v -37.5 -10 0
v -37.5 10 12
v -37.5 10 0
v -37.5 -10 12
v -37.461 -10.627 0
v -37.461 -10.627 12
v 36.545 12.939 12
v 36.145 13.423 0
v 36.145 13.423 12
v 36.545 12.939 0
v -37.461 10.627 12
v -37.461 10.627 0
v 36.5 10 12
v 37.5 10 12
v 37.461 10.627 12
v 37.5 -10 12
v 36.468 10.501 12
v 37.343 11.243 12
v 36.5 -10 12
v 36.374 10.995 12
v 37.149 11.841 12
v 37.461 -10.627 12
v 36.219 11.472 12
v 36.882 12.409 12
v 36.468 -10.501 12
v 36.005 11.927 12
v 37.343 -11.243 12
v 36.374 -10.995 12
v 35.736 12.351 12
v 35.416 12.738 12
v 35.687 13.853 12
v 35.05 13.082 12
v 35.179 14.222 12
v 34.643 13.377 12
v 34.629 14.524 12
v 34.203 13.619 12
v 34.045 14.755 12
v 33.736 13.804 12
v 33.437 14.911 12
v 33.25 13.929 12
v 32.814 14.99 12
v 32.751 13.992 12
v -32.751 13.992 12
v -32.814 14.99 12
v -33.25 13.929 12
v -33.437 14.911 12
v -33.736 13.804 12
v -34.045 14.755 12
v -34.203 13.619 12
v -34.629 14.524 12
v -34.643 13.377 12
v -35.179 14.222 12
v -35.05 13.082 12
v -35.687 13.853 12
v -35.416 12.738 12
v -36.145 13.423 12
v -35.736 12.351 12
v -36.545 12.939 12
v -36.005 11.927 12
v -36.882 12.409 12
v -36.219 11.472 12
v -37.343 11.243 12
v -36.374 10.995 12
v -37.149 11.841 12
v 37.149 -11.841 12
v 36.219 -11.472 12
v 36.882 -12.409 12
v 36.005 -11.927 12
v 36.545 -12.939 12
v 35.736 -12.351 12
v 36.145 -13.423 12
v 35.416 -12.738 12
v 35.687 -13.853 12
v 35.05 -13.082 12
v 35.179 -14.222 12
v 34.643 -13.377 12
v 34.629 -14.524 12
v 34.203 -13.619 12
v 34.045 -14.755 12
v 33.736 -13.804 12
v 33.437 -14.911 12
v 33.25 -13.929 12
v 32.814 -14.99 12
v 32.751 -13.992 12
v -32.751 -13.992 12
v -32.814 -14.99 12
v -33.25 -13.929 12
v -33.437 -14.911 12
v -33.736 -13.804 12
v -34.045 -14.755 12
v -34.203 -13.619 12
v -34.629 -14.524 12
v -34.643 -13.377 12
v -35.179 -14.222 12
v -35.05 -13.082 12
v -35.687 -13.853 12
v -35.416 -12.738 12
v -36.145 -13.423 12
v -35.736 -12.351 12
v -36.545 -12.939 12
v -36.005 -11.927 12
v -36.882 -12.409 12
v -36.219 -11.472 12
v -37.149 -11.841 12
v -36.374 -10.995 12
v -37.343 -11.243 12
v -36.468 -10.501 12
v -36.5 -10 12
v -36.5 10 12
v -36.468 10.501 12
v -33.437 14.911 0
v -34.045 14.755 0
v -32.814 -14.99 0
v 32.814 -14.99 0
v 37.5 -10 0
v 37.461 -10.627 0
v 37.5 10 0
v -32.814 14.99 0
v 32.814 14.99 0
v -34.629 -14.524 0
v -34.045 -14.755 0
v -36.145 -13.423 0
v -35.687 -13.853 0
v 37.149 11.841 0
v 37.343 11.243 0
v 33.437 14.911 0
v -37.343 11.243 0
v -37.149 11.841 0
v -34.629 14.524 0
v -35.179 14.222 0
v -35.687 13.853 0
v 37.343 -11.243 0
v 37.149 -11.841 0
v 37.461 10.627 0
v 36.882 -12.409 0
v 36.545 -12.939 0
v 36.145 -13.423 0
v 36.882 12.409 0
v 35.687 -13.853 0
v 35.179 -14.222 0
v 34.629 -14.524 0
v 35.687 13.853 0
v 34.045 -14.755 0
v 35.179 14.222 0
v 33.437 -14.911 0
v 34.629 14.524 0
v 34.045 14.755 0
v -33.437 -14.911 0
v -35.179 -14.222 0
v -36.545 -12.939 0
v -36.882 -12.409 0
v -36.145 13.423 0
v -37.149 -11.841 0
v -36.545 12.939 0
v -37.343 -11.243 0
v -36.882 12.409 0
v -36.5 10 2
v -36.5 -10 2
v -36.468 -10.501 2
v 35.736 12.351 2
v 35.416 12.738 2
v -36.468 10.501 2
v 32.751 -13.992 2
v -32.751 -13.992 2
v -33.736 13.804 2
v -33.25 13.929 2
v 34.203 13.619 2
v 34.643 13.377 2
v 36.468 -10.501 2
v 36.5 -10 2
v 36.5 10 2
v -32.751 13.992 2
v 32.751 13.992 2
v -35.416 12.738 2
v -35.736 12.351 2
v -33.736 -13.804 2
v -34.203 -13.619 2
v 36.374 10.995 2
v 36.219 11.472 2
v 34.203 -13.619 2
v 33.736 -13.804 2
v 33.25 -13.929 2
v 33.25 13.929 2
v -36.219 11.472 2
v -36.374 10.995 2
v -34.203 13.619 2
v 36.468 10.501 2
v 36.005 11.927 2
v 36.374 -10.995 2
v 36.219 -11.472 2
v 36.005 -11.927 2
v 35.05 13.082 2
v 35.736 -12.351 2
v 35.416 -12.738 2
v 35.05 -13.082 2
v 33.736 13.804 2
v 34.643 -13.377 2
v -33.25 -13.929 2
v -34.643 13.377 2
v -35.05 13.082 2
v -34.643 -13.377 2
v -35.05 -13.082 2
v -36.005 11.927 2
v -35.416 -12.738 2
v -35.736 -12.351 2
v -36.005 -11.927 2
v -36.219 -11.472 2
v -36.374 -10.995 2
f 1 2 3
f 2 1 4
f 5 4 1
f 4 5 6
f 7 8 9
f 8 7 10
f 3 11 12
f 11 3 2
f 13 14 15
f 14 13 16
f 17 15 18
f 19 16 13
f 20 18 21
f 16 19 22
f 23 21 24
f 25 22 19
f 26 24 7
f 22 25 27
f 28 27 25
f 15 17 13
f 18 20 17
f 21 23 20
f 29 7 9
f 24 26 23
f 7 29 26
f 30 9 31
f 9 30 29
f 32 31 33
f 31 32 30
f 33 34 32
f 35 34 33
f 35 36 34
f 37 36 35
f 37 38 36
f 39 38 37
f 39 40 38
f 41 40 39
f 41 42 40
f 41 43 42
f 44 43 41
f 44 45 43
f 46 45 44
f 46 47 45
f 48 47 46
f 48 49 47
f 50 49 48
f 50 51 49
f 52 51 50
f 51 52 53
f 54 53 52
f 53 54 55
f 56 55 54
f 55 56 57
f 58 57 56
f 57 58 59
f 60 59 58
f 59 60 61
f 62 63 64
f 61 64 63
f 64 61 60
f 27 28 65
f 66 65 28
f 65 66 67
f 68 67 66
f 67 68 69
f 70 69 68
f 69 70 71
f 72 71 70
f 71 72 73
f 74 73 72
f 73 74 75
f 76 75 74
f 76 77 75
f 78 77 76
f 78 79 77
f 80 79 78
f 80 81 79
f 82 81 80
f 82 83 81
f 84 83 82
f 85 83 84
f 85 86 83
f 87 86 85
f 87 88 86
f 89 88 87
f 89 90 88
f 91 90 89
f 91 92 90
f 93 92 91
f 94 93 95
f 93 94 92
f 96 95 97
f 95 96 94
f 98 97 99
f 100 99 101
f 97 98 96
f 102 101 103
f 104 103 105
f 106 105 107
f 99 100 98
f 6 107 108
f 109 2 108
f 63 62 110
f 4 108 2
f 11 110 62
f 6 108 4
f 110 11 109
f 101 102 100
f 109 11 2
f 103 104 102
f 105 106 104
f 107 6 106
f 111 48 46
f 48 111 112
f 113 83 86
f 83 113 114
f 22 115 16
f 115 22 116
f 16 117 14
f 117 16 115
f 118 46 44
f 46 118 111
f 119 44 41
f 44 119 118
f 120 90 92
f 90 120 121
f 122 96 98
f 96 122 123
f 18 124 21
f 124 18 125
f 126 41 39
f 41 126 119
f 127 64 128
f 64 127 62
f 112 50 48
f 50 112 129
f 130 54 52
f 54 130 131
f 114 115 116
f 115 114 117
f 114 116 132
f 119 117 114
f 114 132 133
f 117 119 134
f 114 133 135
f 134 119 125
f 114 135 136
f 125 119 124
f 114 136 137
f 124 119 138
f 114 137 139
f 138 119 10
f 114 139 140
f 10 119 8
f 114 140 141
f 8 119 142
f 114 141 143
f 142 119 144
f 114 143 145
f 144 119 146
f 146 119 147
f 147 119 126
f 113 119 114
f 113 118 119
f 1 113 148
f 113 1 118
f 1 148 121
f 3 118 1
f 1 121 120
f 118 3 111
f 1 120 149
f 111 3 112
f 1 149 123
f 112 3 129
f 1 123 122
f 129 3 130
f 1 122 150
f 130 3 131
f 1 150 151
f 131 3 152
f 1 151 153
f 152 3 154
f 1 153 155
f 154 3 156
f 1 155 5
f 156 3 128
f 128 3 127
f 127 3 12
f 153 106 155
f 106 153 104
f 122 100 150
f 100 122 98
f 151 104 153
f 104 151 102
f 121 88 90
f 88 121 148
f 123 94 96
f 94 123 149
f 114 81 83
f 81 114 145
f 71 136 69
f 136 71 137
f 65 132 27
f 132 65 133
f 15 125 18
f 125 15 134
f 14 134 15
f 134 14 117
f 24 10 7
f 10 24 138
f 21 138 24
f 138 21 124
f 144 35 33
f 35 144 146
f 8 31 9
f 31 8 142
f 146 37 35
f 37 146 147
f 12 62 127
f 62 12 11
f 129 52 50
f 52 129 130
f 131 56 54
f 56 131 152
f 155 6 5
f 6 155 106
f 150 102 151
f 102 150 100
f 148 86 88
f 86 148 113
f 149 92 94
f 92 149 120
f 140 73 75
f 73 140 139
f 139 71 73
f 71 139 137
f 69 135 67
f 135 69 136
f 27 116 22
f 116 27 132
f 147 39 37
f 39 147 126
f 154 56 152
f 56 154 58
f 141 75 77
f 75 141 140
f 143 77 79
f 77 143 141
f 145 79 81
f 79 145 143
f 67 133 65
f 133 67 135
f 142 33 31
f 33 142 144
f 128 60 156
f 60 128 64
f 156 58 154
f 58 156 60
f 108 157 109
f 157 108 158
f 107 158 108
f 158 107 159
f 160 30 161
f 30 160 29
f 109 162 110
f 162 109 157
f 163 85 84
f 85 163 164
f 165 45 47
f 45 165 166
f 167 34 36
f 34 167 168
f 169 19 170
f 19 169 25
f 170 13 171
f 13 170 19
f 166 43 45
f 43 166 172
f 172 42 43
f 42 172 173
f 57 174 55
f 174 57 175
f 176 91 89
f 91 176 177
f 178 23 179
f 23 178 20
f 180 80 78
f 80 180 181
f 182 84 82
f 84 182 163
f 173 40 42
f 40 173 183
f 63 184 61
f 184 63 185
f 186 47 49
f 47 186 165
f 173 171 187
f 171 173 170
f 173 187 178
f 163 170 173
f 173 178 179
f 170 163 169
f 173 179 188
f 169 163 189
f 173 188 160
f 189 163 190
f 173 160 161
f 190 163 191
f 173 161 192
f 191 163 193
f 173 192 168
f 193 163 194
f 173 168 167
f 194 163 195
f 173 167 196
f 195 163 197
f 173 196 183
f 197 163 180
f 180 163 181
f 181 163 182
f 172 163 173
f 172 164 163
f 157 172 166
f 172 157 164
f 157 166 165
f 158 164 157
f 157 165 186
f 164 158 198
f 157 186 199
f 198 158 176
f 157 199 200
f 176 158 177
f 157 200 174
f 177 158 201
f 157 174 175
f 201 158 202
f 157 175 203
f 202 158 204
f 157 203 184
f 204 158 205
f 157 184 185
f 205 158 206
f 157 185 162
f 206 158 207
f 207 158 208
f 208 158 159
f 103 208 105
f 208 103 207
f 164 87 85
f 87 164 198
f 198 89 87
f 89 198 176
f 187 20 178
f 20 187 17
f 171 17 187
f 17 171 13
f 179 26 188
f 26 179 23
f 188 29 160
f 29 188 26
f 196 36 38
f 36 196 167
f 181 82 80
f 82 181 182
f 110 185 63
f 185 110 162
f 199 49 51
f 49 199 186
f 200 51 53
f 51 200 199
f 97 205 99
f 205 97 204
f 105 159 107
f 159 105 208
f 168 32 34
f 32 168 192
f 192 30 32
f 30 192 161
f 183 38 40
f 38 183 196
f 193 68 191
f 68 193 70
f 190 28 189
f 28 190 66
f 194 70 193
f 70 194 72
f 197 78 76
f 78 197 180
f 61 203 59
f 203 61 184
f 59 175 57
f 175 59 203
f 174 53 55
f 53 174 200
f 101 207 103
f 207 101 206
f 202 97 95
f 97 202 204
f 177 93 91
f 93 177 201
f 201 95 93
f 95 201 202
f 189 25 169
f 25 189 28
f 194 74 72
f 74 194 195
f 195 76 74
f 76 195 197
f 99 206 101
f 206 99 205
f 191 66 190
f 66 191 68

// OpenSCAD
$fn = 50;


difference() {
	union() {
		hull() {
			translate(v = [-32.5000000000, 10.0000000000, 0]) {
				cylinder(h = 12, r = 5);
			}
			translate(v = [32.5000000000, 10.0000000000, 0]) {
				cylinder(h = 12, r = 5);
			}
			translate(v = [-32.5000000000, -10.0000000000, 0]) {
				cylinder(h = 12, r = 5);
			}
			translate(v = [32.5000000000, -10.0000000000, 0]) {
				cylinder(h = 12, r = 5);
			}
		}
	}
	union() {
		translate(v = [0, 0, 2]) {
			hull() {
				translate(v = [-32.5000000000, 10.0000000000, 0]) {
					cylinder(h = 10, r = 4);
				}
				translate(v = [32.5000000000, 10.0000000000, 0]) {
					cylinder(h = 10, r = 4);
				}
				translate(v = [-32.5000000000, -10.0000000000, 0]) {
					cylinder(h = 10, r = 4);
				}
				translate(v = [32.5000000000, -10.0000000000, 0]) {
					cylinder(h = 10, r = 4);
				}
			}
		}
	}
}
